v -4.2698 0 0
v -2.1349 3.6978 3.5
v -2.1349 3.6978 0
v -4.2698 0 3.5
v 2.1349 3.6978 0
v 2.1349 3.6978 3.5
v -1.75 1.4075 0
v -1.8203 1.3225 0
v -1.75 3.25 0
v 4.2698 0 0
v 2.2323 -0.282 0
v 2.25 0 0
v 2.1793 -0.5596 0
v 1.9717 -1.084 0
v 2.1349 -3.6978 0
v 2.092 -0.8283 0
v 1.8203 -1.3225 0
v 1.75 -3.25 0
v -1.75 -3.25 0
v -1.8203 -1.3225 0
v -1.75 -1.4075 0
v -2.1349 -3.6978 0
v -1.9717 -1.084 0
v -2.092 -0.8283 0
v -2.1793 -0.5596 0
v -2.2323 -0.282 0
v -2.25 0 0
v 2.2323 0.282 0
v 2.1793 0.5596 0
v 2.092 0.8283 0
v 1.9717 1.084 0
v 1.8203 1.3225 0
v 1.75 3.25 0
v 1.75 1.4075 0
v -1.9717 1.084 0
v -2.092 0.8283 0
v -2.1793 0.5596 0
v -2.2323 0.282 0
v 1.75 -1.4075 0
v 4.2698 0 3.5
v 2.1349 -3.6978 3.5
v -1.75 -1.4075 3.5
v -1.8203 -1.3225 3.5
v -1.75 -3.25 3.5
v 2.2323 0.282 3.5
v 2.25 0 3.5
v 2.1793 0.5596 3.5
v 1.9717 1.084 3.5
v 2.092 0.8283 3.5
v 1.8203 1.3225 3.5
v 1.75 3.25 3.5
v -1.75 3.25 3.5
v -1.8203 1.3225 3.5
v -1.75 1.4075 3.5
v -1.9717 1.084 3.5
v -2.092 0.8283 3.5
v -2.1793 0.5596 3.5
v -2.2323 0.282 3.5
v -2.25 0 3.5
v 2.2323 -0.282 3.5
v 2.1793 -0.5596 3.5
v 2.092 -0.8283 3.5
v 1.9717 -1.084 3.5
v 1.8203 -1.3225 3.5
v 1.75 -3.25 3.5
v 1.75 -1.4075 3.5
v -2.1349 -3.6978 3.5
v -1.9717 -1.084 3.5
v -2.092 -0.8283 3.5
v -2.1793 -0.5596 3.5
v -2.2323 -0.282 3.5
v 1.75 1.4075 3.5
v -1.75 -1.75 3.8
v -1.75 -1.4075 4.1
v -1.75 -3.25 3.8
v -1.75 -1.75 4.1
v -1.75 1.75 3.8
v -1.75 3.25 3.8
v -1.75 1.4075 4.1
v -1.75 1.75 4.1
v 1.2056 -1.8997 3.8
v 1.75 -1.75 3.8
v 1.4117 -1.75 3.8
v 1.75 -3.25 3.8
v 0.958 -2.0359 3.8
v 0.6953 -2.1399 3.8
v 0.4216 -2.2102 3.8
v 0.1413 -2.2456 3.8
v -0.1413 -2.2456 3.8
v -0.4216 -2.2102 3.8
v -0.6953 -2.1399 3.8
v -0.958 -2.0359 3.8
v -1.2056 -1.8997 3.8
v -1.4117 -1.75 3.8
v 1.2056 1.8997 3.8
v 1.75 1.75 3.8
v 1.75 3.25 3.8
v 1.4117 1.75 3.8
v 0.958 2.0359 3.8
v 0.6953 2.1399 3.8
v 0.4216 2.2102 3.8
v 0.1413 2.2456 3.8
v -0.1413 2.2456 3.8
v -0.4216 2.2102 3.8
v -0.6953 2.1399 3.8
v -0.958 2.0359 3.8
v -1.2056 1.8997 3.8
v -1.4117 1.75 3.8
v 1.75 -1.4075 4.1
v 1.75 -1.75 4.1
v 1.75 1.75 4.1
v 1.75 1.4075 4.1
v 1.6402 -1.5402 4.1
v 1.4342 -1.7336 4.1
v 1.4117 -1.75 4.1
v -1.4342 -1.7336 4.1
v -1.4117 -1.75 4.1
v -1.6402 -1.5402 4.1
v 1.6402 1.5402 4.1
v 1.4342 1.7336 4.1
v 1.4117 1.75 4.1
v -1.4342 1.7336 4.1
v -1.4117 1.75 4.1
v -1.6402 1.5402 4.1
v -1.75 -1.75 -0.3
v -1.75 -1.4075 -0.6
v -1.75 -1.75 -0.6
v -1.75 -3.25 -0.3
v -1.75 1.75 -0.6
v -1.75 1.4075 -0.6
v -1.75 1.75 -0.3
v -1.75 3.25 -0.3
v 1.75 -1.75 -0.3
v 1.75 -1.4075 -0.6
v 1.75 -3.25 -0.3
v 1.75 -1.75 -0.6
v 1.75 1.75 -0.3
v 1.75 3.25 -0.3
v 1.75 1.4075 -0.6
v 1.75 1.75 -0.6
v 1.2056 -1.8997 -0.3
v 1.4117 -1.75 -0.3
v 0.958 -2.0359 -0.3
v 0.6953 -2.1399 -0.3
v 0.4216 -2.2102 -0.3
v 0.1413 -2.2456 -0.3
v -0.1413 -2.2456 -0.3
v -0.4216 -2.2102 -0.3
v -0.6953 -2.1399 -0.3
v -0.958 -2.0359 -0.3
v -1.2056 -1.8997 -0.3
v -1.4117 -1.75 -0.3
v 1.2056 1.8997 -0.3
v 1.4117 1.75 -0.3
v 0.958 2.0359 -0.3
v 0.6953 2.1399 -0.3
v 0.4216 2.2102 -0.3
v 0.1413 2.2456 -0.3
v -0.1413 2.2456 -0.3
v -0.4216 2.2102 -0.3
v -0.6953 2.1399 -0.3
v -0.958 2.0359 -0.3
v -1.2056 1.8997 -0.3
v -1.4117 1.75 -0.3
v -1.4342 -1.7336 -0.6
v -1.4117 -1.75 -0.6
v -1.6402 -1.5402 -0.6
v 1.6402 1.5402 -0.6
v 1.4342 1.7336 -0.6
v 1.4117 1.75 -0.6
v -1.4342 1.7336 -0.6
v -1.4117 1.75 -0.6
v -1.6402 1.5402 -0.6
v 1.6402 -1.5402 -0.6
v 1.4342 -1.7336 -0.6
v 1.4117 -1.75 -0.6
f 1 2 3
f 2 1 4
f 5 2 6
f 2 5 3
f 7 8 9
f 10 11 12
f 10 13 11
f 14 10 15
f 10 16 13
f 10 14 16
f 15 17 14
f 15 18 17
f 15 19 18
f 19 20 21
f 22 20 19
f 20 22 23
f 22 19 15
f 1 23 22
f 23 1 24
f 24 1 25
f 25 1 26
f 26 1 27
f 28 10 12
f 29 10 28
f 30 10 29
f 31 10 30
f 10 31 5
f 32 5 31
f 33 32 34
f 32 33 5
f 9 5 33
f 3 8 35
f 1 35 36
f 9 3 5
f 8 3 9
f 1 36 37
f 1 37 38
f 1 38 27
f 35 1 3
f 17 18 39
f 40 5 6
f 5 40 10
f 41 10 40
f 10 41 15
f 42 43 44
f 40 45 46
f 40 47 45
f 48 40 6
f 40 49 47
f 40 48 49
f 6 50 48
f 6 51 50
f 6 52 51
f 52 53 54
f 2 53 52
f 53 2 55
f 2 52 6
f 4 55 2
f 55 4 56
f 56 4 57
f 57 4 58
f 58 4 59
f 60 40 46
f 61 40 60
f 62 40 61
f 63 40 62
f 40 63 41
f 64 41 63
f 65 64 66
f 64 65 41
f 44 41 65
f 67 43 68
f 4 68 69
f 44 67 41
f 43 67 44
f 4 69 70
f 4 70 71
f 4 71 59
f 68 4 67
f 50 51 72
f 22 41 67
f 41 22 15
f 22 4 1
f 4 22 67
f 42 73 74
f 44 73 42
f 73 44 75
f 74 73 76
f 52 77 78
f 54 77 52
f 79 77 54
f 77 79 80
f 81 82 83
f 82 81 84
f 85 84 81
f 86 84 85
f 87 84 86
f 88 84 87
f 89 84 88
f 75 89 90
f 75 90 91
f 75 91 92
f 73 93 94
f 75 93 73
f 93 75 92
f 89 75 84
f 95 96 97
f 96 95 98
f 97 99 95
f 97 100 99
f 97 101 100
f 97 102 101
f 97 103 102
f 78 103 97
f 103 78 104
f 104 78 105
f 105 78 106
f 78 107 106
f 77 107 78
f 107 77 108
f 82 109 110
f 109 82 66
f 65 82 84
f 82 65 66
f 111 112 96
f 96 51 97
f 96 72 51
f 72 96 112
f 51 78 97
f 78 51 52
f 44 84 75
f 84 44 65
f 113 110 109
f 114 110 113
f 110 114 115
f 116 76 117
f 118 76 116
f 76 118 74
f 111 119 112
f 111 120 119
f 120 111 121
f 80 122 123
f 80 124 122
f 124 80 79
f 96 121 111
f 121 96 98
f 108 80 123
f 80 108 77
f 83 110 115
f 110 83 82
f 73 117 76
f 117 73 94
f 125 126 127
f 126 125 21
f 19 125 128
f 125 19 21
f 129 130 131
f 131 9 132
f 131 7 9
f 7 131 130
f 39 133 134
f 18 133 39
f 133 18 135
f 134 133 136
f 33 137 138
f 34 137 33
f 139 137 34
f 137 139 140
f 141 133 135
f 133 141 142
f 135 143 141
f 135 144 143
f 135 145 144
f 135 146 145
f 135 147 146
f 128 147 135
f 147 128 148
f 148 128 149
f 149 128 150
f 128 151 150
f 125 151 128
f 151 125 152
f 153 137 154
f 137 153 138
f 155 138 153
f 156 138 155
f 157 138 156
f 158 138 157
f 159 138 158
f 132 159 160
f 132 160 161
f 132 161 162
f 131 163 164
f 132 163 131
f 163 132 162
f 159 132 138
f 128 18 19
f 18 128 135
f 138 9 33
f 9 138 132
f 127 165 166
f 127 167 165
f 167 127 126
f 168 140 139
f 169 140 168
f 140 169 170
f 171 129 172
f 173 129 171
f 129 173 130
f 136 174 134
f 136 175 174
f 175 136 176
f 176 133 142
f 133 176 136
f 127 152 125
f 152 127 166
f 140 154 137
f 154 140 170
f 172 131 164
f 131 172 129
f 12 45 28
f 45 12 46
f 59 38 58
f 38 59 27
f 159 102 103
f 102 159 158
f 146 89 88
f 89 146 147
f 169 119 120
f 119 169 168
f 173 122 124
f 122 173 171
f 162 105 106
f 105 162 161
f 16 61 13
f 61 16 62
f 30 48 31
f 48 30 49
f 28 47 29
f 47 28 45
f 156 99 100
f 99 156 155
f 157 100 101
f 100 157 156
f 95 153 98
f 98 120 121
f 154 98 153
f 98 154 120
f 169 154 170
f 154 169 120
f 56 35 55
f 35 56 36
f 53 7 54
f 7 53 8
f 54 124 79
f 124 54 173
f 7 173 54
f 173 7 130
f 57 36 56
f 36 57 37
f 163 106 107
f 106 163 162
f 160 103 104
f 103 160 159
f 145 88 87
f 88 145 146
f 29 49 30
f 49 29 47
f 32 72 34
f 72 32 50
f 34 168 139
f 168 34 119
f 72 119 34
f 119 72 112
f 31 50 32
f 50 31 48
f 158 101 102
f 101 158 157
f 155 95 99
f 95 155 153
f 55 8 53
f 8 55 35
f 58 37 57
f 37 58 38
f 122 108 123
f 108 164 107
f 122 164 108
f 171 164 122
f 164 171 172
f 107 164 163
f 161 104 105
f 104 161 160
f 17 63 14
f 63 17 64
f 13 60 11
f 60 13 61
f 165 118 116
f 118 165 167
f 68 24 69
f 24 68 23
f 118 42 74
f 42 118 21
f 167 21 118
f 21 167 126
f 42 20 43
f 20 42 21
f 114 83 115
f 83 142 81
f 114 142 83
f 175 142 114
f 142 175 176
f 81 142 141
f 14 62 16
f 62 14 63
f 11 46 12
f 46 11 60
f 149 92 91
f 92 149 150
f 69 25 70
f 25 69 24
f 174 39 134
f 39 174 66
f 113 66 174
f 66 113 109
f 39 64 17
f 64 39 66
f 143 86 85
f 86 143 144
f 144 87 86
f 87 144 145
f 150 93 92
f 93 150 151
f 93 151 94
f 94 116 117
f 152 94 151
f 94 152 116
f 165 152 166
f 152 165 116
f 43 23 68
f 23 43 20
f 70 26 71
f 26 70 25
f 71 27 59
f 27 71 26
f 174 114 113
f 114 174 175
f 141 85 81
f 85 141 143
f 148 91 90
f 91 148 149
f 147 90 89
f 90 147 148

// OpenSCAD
$fn = 50;


difference() {
	union() {
		translate(v = [0, 0, 0]) {
			rotate(a = [0, 0, 0]) {
				translate(v = [0, 0, 0]) {
					rotate(a = [0, 0, 0]) {
						linear_extrude(height = 3.5000000000) {
							polygon(points = [[4.2698000000, 0.0000000000], [2.1349000000, 3.6977552691], [-2.1349000000, 3.6977552691], [-4.2698000000, 0.0000000000], [-2.1349000000, -3.6977552691], [2.1349000000, -3.6977552691]]);
						}
					}
				}
			}
		}
		translate(v = [-1.7500000000, -3.2500000000, 3.5000000000]) {
			rotate(a = [0, 0, 0]) {
				cube(size = [3.5000000000, 6.5000000000, 0.3000000000]);
			}
		}
		translate(v = [-1.7500000000, -1.7500000000, 3.8000000000]) {
			rotate(a = [0, 0, 0]) {
				cube(size = [3.5000000000, 3.5000000000, 0.3000000000]);
			}
		}
		translate(v = [-1.7500000000, -3.2500000000, -0.3000000000]) {
			rotate(a = [0, 0, 0]) {
				cube(size = [3.5000000000, 6.5000000000, 0.3000000000]);
			}
		}
		translate(v = [-1.7500000000, -1.7500000000, -0.6000000000]) {
			rotate(a = [0, 0, 0]) {
				cube(size = [3.5000000000, 3.5000000000, 0.3000000000]);
			}
		}
	}
	union() {
		translate(v = [0, 0, -10]) {
			rotate(a = [0, 0, 0]) {
				cylinder(h = 100, r = 2.2500000000);
			}
		}
	}
}
